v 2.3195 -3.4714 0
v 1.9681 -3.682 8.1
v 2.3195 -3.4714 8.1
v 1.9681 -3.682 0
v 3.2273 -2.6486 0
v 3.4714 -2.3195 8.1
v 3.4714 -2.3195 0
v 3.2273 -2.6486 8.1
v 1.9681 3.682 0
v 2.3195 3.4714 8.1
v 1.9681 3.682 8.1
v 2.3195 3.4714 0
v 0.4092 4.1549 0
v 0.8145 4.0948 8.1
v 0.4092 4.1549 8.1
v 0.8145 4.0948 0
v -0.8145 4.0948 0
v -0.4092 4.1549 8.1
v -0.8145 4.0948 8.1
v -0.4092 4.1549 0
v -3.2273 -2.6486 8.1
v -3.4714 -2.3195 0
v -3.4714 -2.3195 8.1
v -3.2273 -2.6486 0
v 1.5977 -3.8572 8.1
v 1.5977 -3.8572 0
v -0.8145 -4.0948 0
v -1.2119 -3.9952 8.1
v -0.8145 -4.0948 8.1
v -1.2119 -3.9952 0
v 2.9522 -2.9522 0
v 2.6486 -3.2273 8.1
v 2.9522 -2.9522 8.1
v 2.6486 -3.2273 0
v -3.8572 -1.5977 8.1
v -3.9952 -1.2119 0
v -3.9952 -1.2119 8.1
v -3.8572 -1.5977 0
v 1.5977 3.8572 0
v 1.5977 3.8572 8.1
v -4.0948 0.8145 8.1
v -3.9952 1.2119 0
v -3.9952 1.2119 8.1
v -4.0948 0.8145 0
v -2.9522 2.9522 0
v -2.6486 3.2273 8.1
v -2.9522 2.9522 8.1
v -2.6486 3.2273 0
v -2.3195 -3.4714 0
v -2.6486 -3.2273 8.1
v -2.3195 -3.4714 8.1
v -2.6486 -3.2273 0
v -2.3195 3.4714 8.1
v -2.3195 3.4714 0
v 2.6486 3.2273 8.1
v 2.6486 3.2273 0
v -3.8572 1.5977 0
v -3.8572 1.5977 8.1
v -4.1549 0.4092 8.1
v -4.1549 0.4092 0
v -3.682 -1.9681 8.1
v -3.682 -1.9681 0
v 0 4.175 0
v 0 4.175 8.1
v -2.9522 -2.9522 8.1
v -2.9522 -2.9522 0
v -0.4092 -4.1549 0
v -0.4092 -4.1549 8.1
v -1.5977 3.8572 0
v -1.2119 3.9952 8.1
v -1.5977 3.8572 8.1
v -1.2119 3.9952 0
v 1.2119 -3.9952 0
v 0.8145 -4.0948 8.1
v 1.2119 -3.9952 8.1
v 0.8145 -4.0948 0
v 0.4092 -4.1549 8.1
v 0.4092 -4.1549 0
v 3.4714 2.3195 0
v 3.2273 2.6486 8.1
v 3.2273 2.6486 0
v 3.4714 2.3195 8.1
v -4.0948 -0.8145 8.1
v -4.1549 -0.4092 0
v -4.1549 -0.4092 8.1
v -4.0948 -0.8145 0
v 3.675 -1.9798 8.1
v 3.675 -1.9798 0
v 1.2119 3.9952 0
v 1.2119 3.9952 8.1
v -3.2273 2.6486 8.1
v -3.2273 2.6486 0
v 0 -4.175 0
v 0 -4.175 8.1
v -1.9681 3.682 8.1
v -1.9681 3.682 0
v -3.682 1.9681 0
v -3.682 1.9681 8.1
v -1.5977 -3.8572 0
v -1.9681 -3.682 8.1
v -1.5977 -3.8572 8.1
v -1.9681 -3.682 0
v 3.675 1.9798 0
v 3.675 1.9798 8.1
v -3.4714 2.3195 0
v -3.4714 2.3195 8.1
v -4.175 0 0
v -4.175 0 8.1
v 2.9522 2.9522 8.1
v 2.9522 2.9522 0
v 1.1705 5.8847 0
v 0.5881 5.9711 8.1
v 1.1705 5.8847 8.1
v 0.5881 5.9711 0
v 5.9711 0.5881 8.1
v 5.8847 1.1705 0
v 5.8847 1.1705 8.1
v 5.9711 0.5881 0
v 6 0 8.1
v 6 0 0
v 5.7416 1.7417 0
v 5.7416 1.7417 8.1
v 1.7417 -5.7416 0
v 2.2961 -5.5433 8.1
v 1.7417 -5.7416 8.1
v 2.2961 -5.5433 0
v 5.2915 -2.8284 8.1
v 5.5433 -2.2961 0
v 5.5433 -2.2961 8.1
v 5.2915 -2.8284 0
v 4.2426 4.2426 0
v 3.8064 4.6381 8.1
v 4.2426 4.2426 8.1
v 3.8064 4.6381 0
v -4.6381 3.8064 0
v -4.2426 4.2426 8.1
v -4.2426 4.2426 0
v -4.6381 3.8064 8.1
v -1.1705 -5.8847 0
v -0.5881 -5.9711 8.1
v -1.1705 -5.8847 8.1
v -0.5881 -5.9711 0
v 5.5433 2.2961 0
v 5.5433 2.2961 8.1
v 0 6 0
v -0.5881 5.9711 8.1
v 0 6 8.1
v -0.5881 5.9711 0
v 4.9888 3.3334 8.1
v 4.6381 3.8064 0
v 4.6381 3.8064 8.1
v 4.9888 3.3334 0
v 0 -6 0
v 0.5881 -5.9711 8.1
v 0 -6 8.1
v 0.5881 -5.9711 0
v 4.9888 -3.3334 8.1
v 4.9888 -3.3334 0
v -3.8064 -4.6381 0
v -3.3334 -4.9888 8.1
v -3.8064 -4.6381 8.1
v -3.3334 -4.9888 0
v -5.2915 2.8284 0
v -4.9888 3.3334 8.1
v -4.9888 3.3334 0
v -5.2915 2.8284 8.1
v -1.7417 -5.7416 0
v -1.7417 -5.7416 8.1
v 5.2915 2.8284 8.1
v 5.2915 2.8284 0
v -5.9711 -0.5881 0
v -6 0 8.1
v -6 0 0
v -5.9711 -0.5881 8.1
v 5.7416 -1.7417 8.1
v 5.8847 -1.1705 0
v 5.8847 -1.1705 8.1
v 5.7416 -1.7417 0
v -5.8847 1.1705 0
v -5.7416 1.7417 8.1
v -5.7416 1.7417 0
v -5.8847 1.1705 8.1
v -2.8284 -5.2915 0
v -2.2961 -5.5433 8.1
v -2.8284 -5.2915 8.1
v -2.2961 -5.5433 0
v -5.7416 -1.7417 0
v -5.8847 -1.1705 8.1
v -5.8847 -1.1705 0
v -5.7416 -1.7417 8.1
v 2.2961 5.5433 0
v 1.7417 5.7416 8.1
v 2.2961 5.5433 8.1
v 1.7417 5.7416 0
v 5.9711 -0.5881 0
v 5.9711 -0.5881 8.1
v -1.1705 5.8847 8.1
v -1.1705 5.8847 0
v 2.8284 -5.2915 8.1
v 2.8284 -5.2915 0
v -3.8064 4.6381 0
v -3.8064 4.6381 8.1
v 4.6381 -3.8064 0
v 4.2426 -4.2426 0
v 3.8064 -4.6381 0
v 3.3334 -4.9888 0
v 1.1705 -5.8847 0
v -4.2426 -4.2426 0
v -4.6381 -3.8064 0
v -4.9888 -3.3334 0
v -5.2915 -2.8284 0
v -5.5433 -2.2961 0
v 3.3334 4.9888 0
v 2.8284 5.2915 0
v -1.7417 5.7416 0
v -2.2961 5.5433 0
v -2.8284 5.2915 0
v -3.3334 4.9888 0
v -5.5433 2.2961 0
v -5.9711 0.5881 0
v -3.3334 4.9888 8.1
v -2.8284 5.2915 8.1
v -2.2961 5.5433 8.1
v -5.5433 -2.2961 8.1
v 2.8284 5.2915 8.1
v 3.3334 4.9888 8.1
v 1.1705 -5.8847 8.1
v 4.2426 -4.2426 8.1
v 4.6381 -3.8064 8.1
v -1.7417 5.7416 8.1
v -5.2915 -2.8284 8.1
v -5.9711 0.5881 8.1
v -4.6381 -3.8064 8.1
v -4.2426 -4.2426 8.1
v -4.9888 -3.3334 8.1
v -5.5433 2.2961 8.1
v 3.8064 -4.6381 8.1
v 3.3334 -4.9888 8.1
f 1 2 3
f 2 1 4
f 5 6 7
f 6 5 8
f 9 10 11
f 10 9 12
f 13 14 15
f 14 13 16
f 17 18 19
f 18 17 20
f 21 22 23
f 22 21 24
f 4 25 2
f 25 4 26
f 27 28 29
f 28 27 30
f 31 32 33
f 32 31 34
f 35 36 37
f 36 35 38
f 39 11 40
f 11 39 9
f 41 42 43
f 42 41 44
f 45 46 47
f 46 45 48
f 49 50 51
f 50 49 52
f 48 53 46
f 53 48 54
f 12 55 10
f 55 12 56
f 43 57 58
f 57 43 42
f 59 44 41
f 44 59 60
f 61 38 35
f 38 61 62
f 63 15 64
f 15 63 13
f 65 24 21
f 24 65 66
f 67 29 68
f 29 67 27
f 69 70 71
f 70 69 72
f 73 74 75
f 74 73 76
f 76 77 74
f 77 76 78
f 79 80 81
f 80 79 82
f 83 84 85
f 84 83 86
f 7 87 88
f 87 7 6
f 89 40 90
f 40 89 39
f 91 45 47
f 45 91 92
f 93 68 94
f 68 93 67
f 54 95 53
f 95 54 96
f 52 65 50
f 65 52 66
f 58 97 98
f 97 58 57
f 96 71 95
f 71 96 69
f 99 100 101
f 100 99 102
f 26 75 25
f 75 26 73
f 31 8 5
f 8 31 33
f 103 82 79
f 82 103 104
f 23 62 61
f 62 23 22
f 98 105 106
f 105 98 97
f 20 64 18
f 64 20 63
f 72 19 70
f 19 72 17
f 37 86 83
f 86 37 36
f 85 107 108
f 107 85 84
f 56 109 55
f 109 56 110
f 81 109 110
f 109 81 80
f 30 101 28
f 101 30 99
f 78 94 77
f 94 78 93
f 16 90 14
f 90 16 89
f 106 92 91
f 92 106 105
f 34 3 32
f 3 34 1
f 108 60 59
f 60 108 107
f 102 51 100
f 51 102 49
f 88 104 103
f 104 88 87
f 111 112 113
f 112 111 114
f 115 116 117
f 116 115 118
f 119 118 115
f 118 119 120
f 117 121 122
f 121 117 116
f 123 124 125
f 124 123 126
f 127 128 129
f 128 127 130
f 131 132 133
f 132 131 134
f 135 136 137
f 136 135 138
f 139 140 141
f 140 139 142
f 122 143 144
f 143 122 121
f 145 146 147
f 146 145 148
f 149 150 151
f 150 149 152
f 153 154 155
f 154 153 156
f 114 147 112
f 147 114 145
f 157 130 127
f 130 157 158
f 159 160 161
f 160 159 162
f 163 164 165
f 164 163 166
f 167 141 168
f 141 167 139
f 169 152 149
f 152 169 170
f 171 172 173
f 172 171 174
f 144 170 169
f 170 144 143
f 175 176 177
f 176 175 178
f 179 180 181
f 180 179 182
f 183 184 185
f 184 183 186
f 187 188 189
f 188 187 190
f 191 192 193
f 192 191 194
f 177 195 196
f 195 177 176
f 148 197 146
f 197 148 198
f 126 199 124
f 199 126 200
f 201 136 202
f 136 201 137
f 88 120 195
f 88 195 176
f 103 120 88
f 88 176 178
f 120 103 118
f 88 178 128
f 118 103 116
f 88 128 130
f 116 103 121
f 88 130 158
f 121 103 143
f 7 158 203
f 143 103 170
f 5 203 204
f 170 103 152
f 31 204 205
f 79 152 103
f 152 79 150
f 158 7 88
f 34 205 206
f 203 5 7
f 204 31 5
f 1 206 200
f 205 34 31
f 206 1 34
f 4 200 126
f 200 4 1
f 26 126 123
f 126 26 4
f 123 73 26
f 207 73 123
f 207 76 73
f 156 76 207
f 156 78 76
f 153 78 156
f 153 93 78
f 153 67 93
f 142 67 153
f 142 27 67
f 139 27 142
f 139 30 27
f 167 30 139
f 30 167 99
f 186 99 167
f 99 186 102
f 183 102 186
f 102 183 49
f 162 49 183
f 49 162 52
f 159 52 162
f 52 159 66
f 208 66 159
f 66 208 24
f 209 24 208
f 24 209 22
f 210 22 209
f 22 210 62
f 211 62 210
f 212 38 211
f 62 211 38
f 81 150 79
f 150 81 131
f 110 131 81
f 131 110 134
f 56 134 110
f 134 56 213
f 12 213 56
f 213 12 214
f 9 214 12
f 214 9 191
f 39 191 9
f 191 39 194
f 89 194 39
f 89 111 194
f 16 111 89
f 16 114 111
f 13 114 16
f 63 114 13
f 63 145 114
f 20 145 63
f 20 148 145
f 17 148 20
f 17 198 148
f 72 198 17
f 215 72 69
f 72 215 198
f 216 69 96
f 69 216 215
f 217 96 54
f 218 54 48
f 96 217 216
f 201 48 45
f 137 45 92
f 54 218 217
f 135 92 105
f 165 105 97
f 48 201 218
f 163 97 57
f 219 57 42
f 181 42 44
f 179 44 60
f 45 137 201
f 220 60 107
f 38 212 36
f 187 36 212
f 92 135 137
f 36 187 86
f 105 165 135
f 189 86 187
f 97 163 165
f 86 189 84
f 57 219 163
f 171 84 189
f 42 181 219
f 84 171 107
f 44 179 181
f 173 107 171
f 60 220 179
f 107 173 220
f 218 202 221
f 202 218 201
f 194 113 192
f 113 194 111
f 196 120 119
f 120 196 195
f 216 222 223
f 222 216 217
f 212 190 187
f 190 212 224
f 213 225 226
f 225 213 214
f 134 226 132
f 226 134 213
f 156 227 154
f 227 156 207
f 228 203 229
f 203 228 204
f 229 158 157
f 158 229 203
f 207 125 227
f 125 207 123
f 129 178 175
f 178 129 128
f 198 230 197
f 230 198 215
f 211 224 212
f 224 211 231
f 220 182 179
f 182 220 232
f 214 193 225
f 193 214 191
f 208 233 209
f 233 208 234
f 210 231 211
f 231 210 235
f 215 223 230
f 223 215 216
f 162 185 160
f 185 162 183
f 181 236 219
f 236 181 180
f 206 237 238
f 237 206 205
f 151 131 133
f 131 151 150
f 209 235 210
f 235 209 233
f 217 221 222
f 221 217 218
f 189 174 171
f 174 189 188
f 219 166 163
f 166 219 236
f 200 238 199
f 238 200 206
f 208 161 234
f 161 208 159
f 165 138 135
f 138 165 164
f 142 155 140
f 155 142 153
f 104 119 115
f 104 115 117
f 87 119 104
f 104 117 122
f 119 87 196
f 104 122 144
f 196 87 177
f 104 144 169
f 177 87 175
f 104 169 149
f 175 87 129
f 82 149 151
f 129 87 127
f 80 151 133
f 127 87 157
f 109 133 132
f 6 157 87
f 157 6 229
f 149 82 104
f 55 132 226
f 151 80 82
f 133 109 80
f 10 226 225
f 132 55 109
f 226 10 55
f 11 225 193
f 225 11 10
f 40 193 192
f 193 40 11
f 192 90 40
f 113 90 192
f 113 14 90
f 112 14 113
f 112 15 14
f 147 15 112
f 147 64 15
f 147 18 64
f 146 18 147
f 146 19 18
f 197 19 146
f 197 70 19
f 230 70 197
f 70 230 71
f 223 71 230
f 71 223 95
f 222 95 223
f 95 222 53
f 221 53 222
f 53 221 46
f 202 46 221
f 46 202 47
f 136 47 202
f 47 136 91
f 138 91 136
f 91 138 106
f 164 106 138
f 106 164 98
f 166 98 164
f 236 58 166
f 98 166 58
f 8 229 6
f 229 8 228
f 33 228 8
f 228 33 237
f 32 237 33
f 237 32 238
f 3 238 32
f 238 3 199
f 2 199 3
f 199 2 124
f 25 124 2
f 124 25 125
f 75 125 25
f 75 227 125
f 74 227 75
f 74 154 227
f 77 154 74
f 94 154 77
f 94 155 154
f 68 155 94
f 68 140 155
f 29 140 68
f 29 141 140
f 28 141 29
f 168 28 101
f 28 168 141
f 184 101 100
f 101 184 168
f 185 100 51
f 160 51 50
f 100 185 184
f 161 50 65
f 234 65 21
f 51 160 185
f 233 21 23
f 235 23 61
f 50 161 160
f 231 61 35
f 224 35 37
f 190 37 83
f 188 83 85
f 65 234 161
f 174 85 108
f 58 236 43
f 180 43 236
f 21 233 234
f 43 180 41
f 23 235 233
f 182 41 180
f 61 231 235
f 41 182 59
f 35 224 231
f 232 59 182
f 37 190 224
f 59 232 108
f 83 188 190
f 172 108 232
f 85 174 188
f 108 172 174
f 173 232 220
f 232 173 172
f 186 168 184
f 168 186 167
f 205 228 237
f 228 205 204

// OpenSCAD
// Gen-DD — gap sleeve: rigid spacer on the shaft BETWEEN the two rotor carriers (passes through the stator
// hole). Length = m2m, so it sets the magnet gap and carries the full magnet pull. Print x1, upright.
include <parameters.scad>;
$fn = 64;
// D-flat keyed bore: flat faces +X (angle 0 = magnet pocket 0 = index notch)
module dflat_bore(h) {
    intersection() {
        cylinder(d=shaft_bore, h=h);
        translate([-shaft_bore, -shaft_bore, 0]) cube([shaft_bore + dflat_x, 2*shaft_bore, h]);
    }
}

difference() {
    cylinder(d=sleeve_od, h=m2m);
    translate([0, 0, -0.1]) dflat_bore(m2m + 0.2);
}
